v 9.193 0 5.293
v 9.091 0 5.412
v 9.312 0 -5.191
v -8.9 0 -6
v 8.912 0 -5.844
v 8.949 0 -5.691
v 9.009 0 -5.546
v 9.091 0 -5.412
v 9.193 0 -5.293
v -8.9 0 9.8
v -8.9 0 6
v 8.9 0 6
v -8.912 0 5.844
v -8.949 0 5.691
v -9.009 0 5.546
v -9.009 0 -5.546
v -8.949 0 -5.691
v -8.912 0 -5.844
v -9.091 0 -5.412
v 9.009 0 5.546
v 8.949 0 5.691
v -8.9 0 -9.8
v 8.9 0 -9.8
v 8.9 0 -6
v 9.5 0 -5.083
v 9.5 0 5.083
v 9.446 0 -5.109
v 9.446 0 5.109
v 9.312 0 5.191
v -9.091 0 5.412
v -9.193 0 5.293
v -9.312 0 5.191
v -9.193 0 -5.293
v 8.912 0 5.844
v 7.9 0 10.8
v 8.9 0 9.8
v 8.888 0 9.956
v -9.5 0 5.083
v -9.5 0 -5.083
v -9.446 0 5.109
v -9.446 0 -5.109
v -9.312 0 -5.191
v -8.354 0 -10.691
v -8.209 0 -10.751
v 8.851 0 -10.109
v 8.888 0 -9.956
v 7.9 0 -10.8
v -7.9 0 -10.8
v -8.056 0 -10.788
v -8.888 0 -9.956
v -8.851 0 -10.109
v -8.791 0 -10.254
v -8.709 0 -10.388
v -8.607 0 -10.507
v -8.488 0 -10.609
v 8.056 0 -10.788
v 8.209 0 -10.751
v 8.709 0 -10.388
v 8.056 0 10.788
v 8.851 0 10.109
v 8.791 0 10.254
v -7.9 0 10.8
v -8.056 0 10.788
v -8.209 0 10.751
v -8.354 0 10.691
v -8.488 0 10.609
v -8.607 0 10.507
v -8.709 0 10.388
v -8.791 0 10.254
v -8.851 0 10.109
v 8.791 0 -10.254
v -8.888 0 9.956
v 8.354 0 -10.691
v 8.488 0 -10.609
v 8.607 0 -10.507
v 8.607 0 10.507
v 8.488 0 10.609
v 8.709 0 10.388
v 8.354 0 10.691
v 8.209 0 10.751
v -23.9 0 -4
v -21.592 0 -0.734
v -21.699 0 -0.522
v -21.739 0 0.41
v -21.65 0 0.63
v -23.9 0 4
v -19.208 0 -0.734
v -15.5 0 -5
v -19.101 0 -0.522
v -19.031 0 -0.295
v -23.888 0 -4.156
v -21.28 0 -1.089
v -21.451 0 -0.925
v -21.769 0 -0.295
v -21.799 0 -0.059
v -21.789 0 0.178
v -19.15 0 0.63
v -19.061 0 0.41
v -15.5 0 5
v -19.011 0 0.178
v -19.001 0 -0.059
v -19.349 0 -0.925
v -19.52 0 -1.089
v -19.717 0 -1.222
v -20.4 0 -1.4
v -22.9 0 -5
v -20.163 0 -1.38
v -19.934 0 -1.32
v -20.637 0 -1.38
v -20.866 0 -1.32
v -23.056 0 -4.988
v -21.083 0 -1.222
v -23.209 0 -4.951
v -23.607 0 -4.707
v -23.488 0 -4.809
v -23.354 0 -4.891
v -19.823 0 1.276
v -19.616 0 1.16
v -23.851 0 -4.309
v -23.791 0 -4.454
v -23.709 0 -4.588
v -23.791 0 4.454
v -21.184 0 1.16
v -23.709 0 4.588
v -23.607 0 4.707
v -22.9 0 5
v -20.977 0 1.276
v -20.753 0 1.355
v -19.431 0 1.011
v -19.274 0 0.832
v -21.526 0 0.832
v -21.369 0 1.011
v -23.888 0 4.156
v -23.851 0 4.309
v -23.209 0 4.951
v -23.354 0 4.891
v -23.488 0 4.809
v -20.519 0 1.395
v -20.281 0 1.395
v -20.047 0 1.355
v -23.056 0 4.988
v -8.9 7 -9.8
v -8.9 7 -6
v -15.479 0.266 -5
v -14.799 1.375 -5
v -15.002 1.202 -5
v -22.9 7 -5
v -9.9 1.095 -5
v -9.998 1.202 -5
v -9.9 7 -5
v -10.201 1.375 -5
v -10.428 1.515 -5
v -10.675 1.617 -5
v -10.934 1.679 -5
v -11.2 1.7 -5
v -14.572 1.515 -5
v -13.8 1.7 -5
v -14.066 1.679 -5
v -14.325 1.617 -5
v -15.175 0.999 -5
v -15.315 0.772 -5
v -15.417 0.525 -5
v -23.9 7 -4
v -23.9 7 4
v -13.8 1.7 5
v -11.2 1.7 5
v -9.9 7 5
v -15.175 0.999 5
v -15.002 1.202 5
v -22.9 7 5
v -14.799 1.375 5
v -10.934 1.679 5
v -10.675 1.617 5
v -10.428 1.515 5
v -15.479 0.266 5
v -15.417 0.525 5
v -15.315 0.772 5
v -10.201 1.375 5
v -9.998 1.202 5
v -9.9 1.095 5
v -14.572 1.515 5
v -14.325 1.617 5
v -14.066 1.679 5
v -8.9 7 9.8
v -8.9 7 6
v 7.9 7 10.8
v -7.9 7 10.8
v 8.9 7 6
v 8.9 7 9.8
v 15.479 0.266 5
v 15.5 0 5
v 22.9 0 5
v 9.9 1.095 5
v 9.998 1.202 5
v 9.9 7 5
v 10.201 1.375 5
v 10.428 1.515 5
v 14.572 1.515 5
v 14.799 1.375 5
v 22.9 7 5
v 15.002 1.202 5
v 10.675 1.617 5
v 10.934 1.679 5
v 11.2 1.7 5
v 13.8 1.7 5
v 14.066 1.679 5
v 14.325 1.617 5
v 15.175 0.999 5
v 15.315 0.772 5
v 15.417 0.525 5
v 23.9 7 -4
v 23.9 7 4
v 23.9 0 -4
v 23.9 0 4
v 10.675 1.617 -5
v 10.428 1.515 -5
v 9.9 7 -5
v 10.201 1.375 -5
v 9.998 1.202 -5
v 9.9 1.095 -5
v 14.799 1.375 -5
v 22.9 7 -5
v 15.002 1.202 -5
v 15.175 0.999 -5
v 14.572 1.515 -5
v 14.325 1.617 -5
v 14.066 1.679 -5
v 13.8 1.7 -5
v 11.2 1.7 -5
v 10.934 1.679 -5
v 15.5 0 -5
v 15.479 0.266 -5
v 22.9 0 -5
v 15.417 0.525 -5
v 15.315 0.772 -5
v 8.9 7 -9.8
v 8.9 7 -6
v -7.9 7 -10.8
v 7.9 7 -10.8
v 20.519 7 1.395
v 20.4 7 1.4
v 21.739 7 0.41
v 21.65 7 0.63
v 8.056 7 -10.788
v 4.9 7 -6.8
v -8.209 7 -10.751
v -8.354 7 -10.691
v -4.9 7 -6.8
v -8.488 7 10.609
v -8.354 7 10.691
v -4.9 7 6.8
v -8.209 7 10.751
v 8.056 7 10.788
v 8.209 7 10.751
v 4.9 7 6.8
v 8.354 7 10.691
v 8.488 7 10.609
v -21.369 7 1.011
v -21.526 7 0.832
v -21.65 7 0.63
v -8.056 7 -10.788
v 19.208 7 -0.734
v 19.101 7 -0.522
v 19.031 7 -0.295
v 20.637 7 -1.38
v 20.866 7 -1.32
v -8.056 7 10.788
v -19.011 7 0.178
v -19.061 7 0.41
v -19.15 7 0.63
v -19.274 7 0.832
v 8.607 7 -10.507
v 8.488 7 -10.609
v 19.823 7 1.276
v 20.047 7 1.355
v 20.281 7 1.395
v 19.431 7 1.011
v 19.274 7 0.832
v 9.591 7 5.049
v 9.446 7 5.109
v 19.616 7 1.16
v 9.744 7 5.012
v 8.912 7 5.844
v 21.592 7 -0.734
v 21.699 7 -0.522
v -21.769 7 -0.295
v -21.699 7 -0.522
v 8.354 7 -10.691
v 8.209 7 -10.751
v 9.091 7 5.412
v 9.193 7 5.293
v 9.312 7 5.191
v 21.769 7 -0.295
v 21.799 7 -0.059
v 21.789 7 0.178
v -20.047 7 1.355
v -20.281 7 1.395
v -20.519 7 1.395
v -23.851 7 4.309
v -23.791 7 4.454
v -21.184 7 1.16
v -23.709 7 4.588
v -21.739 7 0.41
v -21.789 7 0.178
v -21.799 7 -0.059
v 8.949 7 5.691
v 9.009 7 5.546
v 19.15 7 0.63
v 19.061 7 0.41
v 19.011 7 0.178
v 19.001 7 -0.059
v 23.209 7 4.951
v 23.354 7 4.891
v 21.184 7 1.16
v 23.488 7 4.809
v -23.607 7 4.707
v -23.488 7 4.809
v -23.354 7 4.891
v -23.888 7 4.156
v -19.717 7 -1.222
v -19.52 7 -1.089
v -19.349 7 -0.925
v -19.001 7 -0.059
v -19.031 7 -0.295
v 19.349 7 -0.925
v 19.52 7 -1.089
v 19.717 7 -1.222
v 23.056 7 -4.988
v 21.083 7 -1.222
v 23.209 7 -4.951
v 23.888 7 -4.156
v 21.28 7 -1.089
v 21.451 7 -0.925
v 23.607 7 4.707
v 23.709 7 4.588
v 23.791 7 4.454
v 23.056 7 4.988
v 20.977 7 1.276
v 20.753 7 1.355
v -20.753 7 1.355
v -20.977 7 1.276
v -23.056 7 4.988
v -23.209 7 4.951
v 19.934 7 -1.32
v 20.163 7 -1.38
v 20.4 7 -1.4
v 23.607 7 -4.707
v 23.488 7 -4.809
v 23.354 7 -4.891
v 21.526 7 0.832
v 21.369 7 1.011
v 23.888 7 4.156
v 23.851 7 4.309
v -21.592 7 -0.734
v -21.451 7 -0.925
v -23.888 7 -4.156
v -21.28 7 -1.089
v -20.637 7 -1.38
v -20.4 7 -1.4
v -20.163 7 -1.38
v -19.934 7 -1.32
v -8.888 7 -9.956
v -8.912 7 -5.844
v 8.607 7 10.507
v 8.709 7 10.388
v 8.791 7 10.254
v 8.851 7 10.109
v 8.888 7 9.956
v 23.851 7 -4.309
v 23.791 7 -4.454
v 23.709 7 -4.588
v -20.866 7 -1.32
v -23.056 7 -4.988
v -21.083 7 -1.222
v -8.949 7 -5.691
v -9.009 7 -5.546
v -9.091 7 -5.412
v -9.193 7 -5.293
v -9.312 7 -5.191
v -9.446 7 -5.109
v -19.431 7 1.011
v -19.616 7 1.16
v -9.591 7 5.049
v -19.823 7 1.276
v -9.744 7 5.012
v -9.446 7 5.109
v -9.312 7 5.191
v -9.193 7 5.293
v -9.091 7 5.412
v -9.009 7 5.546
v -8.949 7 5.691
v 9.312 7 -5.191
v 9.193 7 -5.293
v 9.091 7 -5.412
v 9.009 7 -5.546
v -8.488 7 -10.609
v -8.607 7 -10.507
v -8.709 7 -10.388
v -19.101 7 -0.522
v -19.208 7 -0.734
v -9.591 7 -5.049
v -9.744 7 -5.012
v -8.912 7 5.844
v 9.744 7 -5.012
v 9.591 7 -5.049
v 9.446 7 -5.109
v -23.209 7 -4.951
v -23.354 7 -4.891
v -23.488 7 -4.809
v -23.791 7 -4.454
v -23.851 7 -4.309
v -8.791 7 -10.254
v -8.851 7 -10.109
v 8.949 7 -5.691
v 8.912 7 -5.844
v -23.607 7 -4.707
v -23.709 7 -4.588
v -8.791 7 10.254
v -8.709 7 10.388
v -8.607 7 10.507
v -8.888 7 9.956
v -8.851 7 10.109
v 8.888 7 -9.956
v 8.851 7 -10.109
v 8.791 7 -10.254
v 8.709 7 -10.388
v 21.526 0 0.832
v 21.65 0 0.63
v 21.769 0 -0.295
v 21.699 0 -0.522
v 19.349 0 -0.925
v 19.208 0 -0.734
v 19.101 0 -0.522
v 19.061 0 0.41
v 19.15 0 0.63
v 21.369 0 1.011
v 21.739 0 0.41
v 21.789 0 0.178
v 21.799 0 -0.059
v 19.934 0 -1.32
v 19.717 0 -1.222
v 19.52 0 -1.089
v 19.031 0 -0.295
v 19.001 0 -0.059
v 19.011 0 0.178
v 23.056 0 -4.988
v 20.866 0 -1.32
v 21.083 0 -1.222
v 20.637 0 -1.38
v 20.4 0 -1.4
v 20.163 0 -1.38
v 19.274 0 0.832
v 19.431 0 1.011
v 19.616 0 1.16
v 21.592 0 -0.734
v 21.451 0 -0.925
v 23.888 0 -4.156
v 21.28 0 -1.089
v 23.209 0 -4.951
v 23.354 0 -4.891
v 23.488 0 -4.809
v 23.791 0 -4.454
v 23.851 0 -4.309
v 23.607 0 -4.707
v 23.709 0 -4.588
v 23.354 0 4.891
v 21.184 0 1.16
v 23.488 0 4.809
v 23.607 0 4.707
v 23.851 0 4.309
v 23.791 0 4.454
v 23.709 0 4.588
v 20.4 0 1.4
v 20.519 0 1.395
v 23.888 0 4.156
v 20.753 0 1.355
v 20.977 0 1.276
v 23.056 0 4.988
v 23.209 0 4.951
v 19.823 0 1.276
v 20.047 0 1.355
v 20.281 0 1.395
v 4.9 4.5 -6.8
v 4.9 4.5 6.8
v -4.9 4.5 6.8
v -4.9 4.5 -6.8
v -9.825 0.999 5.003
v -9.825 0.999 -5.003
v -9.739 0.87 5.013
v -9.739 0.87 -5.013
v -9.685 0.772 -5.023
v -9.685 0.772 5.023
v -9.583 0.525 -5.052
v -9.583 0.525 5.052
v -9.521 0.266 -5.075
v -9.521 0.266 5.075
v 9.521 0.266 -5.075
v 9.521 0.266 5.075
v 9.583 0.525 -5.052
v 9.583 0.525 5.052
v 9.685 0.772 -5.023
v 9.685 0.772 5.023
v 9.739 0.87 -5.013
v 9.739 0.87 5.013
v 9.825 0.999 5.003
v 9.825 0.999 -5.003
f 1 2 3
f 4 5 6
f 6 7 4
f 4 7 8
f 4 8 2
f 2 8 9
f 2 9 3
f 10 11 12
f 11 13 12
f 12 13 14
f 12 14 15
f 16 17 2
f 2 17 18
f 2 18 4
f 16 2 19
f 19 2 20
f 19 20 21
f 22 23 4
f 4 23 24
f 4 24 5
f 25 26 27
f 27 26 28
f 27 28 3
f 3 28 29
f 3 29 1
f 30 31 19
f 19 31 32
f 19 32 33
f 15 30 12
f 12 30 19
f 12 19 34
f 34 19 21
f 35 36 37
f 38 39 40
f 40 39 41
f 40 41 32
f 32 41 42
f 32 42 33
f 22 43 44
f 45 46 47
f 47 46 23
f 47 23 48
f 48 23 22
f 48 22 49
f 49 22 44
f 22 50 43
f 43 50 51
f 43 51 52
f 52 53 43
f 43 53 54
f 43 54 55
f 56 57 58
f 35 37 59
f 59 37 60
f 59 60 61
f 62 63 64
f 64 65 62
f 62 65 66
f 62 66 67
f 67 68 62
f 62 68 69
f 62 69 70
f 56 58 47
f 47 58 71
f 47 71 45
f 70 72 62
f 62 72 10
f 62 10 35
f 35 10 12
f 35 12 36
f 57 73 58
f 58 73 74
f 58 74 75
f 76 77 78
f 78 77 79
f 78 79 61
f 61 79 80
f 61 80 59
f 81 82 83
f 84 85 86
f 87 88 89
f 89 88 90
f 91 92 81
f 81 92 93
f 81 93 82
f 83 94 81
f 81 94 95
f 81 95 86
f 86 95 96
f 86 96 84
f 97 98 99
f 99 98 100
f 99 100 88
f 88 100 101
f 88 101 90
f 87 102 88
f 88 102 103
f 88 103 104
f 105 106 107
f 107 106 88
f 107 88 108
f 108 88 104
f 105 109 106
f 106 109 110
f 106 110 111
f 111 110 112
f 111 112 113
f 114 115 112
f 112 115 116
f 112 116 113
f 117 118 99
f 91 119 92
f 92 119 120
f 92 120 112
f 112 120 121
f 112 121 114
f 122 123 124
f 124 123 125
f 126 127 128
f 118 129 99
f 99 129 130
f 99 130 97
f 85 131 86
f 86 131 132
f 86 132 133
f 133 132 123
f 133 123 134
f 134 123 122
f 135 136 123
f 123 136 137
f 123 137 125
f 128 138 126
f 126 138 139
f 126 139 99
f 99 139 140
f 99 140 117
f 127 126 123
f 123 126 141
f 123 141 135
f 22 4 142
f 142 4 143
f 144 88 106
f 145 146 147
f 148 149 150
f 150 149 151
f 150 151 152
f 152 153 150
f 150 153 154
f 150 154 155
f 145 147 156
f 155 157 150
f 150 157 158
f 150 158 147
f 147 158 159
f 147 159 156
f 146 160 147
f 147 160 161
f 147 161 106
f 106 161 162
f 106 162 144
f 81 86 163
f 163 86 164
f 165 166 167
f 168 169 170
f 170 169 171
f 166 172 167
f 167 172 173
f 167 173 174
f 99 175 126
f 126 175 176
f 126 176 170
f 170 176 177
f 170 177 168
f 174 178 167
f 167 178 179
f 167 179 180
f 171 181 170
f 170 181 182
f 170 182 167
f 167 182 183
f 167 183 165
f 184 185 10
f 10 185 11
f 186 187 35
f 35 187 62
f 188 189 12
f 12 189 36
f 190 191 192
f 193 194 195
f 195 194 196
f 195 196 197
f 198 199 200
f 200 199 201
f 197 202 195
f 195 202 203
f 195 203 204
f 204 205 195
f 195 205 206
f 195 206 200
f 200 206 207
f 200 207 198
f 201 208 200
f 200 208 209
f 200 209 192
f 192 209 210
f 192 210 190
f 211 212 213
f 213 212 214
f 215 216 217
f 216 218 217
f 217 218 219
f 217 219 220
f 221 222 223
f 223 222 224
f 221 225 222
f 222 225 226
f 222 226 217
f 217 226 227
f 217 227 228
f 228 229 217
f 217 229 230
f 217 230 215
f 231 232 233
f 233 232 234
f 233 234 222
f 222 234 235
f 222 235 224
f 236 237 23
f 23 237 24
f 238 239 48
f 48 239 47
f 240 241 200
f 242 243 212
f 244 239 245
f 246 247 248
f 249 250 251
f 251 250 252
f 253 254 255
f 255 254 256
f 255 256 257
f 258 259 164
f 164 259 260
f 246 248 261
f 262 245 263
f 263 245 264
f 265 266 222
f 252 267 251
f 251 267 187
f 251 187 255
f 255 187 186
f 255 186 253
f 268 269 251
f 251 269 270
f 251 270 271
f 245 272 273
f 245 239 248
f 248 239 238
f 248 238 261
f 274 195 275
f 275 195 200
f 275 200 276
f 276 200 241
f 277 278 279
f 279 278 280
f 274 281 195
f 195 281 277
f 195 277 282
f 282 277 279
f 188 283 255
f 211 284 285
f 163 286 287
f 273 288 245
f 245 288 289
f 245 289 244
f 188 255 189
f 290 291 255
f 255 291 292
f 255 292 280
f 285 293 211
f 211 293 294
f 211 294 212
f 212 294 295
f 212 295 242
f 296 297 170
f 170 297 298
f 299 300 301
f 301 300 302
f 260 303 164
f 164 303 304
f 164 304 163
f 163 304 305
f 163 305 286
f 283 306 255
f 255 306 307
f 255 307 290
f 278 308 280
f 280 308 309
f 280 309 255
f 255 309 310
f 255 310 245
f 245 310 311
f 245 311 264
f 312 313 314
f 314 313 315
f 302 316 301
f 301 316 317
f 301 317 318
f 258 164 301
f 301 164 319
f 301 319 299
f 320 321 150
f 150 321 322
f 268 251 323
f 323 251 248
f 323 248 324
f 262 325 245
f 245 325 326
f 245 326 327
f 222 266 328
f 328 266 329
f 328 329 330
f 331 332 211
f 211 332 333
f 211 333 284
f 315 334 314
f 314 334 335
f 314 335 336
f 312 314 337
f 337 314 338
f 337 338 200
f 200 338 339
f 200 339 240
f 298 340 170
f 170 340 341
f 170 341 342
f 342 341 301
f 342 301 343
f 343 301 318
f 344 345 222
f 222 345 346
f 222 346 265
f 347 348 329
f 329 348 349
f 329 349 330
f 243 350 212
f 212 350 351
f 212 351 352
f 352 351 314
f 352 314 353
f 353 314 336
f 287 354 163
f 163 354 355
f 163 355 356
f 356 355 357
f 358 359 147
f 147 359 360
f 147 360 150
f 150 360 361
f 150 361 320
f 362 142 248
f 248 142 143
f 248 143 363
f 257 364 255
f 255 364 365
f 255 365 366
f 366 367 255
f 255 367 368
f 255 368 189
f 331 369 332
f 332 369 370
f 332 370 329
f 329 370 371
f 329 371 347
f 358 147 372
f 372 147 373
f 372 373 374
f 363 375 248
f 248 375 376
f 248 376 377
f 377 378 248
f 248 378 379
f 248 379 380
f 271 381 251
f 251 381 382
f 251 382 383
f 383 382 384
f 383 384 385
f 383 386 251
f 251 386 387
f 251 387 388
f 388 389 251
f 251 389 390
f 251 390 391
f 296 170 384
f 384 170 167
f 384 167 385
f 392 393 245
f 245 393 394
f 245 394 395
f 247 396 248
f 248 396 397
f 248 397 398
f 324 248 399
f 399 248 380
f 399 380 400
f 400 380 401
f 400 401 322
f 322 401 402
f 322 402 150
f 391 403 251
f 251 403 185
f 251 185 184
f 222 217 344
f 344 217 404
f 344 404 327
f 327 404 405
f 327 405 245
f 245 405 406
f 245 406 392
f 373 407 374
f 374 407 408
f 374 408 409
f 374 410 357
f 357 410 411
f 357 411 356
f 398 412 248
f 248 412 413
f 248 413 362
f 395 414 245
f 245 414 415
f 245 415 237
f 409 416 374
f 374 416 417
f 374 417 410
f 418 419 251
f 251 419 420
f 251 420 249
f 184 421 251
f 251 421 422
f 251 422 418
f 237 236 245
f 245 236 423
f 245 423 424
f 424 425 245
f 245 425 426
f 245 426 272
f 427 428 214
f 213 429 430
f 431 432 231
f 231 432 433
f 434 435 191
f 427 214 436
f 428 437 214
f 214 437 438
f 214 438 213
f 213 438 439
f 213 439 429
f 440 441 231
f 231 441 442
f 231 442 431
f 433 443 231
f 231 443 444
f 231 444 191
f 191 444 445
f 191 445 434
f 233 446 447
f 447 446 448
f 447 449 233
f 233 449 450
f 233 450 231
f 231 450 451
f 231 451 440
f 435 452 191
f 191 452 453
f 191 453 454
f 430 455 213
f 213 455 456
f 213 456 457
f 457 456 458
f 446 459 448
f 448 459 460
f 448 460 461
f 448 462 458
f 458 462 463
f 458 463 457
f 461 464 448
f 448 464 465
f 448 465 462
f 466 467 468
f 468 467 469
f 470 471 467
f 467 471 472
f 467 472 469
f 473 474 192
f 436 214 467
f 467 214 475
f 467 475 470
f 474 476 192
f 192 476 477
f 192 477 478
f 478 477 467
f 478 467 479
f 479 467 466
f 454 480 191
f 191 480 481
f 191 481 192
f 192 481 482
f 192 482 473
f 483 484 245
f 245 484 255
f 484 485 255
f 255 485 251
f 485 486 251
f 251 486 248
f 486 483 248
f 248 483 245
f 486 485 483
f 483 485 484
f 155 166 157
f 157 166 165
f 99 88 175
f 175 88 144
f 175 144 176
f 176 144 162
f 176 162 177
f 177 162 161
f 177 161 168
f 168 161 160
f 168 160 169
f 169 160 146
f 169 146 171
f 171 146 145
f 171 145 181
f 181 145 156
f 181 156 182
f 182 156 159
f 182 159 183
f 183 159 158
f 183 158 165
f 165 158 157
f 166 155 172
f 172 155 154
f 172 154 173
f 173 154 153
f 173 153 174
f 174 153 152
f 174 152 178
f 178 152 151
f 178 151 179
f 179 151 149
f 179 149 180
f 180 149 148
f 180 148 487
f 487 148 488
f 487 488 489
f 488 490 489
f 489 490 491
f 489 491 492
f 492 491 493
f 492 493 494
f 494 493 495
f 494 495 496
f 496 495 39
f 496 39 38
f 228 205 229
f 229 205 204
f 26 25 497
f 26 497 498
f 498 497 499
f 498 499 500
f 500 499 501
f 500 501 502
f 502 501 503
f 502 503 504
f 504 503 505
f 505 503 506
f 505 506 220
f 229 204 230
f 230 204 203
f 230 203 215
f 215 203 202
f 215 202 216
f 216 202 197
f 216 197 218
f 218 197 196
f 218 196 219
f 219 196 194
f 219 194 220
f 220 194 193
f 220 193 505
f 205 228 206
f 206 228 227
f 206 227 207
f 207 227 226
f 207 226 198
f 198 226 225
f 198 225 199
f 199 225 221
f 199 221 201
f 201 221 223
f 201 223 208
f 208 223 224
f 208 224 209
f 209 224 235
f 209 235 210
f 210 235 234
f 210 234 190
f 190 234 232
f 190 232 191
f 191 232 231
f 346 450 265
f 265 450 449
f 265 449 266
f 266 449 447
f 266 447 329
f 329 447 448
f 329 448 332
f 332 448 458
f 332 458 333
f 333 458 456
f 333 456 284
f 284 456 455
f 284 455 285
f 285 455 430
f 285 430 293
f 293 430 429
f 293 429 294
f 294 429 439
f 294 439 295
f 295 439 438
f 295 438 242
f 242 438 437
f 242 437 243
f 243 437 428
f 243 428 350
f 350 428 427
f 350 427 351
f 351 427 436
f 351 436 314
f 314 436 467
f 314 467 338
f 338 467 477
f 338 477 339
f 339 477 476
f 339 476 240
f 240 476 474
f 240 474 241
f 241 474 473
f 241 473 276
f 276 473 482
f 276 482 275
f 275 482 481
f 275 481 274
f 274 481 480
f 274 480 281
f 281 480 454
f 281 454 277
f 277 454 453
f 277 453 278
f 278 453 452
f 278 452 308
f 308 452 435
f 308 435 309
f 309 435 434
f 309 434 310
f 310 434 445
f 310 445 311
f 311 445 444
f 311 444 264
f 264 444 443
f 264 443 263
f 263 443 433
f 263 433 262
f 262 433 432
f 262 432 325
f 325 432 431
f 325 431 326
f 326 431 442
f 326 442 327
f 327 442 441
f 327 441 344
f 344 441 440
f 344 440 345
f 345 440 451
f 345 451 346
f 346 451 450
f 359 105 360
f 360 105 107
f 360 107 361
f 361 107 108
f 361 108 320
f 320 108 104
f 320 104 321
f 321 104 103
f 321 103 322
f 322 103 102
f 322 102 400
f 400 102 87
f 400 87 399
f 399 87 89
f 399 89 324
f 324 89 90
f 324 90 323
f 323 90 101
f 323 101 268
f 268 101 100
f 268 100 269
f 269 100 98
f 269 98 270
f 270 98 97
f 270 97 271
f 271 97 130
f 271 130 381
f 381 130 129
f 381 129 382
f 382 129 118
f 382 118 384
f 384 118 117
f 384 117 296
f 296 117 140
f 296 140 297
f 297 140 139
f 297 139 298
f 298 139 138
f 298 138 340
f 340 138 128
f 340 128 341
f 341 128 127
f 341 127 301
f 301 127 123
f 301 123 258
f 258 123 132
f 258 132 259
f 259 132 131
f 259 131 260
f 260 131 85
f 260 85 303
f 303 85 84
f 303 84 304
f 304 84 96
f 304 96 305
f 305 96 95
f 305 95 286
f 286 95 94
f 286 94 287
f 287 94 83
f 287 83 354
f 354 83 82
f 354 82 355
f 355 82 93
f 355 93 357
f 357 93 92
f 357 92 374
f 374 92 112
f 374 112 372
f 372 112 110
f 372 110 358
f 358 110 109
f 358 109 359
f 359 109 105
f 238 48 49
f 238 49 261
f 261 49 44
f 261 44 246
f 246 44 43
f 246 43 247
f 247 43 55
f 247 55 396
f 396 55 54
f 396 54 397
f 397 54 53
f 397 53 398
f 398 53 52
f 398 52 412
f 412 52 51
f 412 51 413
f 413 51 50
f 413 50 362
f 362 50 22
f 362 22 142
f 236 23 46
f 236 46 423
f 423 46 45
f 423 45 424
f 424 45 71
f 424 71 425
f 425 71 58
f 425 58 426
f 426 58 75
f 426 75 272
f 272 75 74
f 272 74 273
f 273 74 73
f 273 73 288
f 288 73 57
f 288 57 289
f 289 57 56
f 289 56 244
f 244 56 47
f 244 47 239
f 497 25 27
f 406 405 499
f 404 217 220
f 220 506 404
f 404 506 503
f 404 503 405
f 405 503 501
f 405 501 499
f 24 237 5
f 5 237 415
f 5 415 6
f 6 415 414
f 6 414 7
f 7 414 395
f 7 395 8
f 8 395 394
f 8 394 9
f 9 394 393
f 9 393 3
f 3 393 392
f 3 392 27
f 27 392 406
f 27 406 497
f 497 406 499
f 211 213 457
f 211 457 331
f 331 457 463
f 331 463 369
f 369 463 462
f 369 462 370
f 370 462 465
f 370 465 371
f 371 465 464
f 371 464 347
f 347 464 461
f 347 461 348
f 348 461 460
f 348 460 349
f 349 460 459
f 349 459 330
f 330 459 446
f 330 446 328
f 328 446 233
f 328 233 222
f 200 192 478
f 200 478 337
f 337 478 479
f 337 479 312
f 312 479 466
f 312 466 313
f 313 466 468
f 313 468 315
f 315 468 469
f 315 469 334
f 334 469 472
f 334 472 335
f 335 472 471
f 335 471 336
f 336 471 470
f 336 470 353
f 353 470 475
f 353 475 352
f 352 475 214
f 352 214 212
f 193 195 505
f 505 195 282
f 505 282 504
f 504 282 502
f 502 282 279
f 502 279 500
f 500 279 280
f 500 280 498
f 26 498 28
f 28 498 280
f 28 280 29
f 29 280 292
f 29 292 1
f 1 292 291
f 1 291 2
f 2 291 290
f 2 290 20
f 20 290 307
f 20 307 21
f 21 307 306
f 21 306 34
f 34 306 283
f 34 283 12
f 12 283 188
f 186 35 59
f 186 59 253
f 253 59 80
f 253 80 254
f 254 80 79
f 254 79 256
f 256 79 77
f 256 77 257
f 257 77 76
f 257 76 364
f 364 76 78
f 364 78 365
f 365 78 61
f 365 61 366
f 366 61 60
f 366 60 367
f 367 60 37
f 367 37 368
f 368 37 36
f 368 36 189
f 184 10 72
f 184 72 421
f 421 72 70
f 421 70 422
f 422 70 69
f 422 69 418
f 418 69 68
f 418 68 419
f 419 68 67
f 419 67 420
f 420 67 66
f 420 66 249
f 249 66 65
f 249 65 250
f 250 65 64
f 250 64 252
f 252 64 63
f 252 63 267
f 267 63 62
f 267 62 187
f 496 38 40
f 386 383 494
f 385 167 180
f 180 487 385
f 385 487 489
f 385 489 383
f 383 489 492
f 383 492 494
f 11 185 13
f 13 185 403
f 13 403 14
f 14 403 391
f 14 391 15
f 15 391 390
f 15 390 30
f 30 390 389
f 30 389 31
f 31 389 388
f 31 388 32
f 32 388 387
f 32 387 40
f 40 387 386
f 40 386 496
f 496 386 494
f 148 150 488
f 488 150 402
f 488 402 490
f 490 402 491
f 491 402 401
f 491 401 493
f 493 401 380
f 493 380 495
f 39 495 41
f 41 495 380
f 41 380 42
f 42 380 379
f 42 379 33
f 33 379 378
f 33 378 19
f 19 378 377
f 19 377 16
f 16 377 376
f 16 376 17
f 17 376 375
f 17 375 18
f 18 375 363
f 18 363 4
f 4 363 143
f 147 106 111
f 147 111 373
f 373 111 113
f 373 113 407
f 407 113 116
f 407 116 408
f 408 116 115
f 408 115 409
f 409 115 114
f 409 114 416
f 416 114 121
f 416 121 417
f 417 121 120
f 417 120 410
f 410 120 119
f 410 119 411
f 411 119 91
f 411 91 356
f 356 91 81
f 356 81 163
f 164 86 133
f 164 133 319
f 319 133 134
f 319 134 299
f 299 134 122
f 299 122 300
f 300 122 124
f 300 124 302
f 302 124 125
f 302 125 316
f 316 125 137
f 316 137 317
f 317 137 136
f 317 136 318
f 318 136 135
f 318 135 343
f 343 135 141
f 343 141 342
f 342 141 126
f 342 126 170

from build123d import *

# Parameters (mm, degrees)
BASE_DEPTH                = 7
SKETCH2_W                 = 9.8
SKETCH2_H                 = 13.6
PCB_CUTOUT_DEPTH          = 2.5
BASKET_WIRE_GROOVES_DEPTH = 30.49321956
SKETCH5_R                 = 1.4
SCREW_HOLES_DEPTH         = 28.14498112
F_1MM_EDGE_FILLETS_R      = 1


with BuildPart() as part:
    # Sketch1 → Base (new body)
    with BuildSketch(Plane(origin=(0, 0, 0), x_dir=(1, 0, 0), z_dir=(0, 1, 0))):
        Polygon((-8.9, 10.8), (-8.9, 5), (-23.9, 5), (-23.9, -5), (-8.9, -5), (-8.9, -10.8), (8.9, -10.8), (8.9, -5), (23.9, -5), (23.9, 5), (8.9, 5), (8.9, 10.8), (0, 10.8), align=None)
    extrude(amount=BASE_DEPTH)

    # Sketch2 → PCB Cutout (cut)
    with BuildSketch(Plane(origin=(0, 7, 0), x_dir=(1, 0, 0), z_dir=(0, 1, 0))):
        Rectangle(SKETCH2_W, SKETCH2_H)
    extrude(amount=-PCB_CUTOUT_DEPTH, mode=Mode.SUBTRACT)

    # Sketch4 → Basket Wire Grooves (cut, through all)
    with BuildSketch(Plane(origin=(0, 0, -5), x_dir=(-1, 0, 0), z_dir=(0, 0, -1))):
        with BuildLine():
            Line((-9.5, 0), (-15.5, 0))
            ThreePointArc((-15.5, 0), (-15.002081528, 1.202081528), (-13.8, 1.7))
            Line((-13.8, 1.7), (-11.2, 1.7))
            ThreePointArc((-11.2, 1.7), (-9.997918472, 1.202081528), (-9.5, 0))
        make_face()
        with BuildLine():
            Line((13.8, 1.7), (11.2, 1.7))
            ThreePointArc((11.2, 1.7), (9.997918472, 1.202081528), (9.5, 0))
            Line((9.5, 0), (15.5, 0))
            ThreePointArc((15.5, 0), (15.002081528, 1.202081528), (13.8, 1.7))
        make_face()
    extrude(amount=-BASKET_WIRE_GROOVES_DEPTH, mode=Mode.SUBTRACT)

    # Sketch5 → Screw Holes (cut, through all)
    with BuildSketch(Plane.XZ):
        with Locations(Location((-20.4, 0, 0), (0, 0, 270))):
            Circle(SKETCH5_R)
        with Locations(Location((20.4, 0, 0), (0, 0, 90))):
            Circle(SKETCH5_R)
    extrude(amount=-SCREW_HOLES_DEPTH, mode=Mode.SUBTRACT)

    # 1mm Edge Fillets
    # the kernel refuses this fillet: 1 mm, written as the material it adds along each edge
    with BuildSketch(Plane(origin=(8.9, 0, -5), x_dir=(0, 0, -1), z_dir=(0, 1, 0))) as f_1mm_edge_fillets_piece_1_section:
        with BuildLine():
            CenterArc((F_1MM_EDGE_FILLETS_R, -F_1MM_EDGE_FILLETS_R), F_1MM_EDGE_FILLETS_R, 90, 90)
            Line((0, -F_1MM_EDGE_FILLETS_R), (0, 0))
            Line((0, 0), (F_1MM_EDGE_FILLETS_R, 0))
        make_face()
    f_1mm_edge_fillets_piece_1 = extrude(amount=7, mode=Mode.PRIVATE)
    f_1mm_edge_fillets_piece_1 = f_1mm_edge_fillets_piece_1 - Plane(origin=(11.2, 0, -5.227855897), x_dir=(0, 1, 0), z_dir=(0, 0, -1)) * Cylinder(1.7, 18, mode=Mode.PRIVATE)
    add(f_1mm_edge_fillets_piece_1)
    with BuildSketch(Plane(origin=(8.9, 0, 5), x_dir=(1, 0, 0), z_dir=(0, 1, 0))) as f_1mm_edge_fillets_piece_2_section:
        with BuildLine():
            CenterArc((F_1MM_EDGE_FILLETS_R, -F_1MM_EDGE_FILLETS_R), F_1MM_EDGE_FILLETS_R, 90, 90)
            Line((0, -F_1MM_EDGE_FILLETS_R), (0, 0))
            Line((0, 0), (F_1MM_EDGE_FILLETS_R, 0))
        make_face()
    f_1mm_edge_fillets_piece_2 = extrude(amount=7, mode=Mode.PRIVATE)
    f_1mm_edge_fillets_piece_2 = f_1mm_edge_fillets_piece_2 - Plane(origin=(11.2, 0, 5.227855907), x_dir=(0, 1, 0), z_dir=(0, 0, -1)) * Cylinder(1.7, 19, mode=Mode.PRIVATE)
    add(f_1mm_edge_fillets_piece_2)
    with BuildSketch(Plane(origin=(-8.9, 0, 5), x_dir=(0, 0, 1), z_dir=(0, 1, 0))) as f_1mm_edge_fillets_piece_3_section:
        with BuildLine():
            CenterArc((F_1MM_EDGE_FILLETS_R, -F_1MM_EDGE_FILLETS_R), F_1MM_EDGE_FILLETS_R, 90, 90)
            Line((0, -F_1MM_EDGE_FILLETS_R), (0, 0))
            Line((0, 0), (F_1MM_EDGE_FILLETS_R, 0))
        make_face()
    f_1mm_edge_fillets_piece_3 = extrude(amount=7, mode=Mode.PRIVATE)
    f_1mm_edge_fillets_piece_3 = f_1mm_edge_fillets_piece_3 - Plane(origin=(-11.2, 0, 5.227855897), x_dir=(0, 1, 0), z_dir=(0, 0, -1)) * Cylinder(1.7, 18, mode=Mode.PRIVATE)
    add(f_1mm_edge_fillets_piece_3)
    with BuildSketch(Plane(origin=(-8.9, 0, -5), x_dir=(0, 0, -1), z_dir=(0, 1, 0))) as f_1mm_edge_fillets_piece_4_section:
        with BuildLine():
            CenterArc((F_1MM_EDGE_FILLETS_R, F_1MM_EDGE_FILLETS_R), F_1MM_EDGE_FILLETS_R, 180, 90)
            Line((0, F_1MM_EDGE_FILLETS_R), (0, 0))
            Line((0, 0), (F_1MM_EDGE_FILLETS_R, 0))
        make_face()
    f_1mm_edge_fillets_piece_4 = extrude(amount=7, mode=Mode.PRIVATE)
    f_1mm_edge_fillets_piece_4 = f_1mm_edge_fillets_piece_4 - Plane(origin=(-11.2, 0, -5.227855897), x_dir=(0, 1, 0), z_dir=(0, 0, -1)) * Cylinder(1.7, 19, mode=Mode.PRIVATE)
    add(f_1mm_edge_fillets_piece_4)
    # the kernel refuses this fillet: 1 mm, written as the material it takes off along each edge
    with BuildSketch(Plane(origin=(8.9, -2.5, -10.8), x_dir=(-1, 0, 0), z_dir=(0, 1, 0)), Plane(origin=(23.9, -2.5, -5), x_dir=(-1, 0, 0), z_dir=(0, 1, 0)), Plane(origin=(23.9, -2.5, 5), x_dir=(0, 0, -1), z_dir=(0, 1, 0)), Plane(origin=(8.9, -2.5, 10.8), x_dir=(0, 0, -1), z_dir=(0, 1, 0)), Plane(origin=(-8.9, -2.5, 10.8), x_dir=(1, 0, 0), z_dir=(0, 1, 0)), Plane(origin=(-23.9, -2.5, 5), x_dir=(1, 0, 0), z_dir=(0, 1, 0)), Plane(origin=(-23.9, -2.5, -5), x_dir=(0, 0, 1), z_dir=(0, 1, 0)), Plane(origin=(-8.9, -2.5, -10.8), x_dir=(0, 0, 1), z_dir=(0, 1, 0))) as f_1mm_edge_fillets_2_piece_1:
        with BuildLine():
            CenterArc((F_1MM_EDGE_FILLETS_R, F_1MM_EDGE_FILLETS_R), F_1MM_EDGE_FILLETS_R, 180, 90)
            Line((0, F_1MM_EDGE_FILLETS_R), (0, 0))
            Line((0, 0), (F_1MM_EDGE_FILLETS_R, 0))
        make_face()
    extrude(amount=12, mode=Mode.SUBTRACT)


solid = part.part
